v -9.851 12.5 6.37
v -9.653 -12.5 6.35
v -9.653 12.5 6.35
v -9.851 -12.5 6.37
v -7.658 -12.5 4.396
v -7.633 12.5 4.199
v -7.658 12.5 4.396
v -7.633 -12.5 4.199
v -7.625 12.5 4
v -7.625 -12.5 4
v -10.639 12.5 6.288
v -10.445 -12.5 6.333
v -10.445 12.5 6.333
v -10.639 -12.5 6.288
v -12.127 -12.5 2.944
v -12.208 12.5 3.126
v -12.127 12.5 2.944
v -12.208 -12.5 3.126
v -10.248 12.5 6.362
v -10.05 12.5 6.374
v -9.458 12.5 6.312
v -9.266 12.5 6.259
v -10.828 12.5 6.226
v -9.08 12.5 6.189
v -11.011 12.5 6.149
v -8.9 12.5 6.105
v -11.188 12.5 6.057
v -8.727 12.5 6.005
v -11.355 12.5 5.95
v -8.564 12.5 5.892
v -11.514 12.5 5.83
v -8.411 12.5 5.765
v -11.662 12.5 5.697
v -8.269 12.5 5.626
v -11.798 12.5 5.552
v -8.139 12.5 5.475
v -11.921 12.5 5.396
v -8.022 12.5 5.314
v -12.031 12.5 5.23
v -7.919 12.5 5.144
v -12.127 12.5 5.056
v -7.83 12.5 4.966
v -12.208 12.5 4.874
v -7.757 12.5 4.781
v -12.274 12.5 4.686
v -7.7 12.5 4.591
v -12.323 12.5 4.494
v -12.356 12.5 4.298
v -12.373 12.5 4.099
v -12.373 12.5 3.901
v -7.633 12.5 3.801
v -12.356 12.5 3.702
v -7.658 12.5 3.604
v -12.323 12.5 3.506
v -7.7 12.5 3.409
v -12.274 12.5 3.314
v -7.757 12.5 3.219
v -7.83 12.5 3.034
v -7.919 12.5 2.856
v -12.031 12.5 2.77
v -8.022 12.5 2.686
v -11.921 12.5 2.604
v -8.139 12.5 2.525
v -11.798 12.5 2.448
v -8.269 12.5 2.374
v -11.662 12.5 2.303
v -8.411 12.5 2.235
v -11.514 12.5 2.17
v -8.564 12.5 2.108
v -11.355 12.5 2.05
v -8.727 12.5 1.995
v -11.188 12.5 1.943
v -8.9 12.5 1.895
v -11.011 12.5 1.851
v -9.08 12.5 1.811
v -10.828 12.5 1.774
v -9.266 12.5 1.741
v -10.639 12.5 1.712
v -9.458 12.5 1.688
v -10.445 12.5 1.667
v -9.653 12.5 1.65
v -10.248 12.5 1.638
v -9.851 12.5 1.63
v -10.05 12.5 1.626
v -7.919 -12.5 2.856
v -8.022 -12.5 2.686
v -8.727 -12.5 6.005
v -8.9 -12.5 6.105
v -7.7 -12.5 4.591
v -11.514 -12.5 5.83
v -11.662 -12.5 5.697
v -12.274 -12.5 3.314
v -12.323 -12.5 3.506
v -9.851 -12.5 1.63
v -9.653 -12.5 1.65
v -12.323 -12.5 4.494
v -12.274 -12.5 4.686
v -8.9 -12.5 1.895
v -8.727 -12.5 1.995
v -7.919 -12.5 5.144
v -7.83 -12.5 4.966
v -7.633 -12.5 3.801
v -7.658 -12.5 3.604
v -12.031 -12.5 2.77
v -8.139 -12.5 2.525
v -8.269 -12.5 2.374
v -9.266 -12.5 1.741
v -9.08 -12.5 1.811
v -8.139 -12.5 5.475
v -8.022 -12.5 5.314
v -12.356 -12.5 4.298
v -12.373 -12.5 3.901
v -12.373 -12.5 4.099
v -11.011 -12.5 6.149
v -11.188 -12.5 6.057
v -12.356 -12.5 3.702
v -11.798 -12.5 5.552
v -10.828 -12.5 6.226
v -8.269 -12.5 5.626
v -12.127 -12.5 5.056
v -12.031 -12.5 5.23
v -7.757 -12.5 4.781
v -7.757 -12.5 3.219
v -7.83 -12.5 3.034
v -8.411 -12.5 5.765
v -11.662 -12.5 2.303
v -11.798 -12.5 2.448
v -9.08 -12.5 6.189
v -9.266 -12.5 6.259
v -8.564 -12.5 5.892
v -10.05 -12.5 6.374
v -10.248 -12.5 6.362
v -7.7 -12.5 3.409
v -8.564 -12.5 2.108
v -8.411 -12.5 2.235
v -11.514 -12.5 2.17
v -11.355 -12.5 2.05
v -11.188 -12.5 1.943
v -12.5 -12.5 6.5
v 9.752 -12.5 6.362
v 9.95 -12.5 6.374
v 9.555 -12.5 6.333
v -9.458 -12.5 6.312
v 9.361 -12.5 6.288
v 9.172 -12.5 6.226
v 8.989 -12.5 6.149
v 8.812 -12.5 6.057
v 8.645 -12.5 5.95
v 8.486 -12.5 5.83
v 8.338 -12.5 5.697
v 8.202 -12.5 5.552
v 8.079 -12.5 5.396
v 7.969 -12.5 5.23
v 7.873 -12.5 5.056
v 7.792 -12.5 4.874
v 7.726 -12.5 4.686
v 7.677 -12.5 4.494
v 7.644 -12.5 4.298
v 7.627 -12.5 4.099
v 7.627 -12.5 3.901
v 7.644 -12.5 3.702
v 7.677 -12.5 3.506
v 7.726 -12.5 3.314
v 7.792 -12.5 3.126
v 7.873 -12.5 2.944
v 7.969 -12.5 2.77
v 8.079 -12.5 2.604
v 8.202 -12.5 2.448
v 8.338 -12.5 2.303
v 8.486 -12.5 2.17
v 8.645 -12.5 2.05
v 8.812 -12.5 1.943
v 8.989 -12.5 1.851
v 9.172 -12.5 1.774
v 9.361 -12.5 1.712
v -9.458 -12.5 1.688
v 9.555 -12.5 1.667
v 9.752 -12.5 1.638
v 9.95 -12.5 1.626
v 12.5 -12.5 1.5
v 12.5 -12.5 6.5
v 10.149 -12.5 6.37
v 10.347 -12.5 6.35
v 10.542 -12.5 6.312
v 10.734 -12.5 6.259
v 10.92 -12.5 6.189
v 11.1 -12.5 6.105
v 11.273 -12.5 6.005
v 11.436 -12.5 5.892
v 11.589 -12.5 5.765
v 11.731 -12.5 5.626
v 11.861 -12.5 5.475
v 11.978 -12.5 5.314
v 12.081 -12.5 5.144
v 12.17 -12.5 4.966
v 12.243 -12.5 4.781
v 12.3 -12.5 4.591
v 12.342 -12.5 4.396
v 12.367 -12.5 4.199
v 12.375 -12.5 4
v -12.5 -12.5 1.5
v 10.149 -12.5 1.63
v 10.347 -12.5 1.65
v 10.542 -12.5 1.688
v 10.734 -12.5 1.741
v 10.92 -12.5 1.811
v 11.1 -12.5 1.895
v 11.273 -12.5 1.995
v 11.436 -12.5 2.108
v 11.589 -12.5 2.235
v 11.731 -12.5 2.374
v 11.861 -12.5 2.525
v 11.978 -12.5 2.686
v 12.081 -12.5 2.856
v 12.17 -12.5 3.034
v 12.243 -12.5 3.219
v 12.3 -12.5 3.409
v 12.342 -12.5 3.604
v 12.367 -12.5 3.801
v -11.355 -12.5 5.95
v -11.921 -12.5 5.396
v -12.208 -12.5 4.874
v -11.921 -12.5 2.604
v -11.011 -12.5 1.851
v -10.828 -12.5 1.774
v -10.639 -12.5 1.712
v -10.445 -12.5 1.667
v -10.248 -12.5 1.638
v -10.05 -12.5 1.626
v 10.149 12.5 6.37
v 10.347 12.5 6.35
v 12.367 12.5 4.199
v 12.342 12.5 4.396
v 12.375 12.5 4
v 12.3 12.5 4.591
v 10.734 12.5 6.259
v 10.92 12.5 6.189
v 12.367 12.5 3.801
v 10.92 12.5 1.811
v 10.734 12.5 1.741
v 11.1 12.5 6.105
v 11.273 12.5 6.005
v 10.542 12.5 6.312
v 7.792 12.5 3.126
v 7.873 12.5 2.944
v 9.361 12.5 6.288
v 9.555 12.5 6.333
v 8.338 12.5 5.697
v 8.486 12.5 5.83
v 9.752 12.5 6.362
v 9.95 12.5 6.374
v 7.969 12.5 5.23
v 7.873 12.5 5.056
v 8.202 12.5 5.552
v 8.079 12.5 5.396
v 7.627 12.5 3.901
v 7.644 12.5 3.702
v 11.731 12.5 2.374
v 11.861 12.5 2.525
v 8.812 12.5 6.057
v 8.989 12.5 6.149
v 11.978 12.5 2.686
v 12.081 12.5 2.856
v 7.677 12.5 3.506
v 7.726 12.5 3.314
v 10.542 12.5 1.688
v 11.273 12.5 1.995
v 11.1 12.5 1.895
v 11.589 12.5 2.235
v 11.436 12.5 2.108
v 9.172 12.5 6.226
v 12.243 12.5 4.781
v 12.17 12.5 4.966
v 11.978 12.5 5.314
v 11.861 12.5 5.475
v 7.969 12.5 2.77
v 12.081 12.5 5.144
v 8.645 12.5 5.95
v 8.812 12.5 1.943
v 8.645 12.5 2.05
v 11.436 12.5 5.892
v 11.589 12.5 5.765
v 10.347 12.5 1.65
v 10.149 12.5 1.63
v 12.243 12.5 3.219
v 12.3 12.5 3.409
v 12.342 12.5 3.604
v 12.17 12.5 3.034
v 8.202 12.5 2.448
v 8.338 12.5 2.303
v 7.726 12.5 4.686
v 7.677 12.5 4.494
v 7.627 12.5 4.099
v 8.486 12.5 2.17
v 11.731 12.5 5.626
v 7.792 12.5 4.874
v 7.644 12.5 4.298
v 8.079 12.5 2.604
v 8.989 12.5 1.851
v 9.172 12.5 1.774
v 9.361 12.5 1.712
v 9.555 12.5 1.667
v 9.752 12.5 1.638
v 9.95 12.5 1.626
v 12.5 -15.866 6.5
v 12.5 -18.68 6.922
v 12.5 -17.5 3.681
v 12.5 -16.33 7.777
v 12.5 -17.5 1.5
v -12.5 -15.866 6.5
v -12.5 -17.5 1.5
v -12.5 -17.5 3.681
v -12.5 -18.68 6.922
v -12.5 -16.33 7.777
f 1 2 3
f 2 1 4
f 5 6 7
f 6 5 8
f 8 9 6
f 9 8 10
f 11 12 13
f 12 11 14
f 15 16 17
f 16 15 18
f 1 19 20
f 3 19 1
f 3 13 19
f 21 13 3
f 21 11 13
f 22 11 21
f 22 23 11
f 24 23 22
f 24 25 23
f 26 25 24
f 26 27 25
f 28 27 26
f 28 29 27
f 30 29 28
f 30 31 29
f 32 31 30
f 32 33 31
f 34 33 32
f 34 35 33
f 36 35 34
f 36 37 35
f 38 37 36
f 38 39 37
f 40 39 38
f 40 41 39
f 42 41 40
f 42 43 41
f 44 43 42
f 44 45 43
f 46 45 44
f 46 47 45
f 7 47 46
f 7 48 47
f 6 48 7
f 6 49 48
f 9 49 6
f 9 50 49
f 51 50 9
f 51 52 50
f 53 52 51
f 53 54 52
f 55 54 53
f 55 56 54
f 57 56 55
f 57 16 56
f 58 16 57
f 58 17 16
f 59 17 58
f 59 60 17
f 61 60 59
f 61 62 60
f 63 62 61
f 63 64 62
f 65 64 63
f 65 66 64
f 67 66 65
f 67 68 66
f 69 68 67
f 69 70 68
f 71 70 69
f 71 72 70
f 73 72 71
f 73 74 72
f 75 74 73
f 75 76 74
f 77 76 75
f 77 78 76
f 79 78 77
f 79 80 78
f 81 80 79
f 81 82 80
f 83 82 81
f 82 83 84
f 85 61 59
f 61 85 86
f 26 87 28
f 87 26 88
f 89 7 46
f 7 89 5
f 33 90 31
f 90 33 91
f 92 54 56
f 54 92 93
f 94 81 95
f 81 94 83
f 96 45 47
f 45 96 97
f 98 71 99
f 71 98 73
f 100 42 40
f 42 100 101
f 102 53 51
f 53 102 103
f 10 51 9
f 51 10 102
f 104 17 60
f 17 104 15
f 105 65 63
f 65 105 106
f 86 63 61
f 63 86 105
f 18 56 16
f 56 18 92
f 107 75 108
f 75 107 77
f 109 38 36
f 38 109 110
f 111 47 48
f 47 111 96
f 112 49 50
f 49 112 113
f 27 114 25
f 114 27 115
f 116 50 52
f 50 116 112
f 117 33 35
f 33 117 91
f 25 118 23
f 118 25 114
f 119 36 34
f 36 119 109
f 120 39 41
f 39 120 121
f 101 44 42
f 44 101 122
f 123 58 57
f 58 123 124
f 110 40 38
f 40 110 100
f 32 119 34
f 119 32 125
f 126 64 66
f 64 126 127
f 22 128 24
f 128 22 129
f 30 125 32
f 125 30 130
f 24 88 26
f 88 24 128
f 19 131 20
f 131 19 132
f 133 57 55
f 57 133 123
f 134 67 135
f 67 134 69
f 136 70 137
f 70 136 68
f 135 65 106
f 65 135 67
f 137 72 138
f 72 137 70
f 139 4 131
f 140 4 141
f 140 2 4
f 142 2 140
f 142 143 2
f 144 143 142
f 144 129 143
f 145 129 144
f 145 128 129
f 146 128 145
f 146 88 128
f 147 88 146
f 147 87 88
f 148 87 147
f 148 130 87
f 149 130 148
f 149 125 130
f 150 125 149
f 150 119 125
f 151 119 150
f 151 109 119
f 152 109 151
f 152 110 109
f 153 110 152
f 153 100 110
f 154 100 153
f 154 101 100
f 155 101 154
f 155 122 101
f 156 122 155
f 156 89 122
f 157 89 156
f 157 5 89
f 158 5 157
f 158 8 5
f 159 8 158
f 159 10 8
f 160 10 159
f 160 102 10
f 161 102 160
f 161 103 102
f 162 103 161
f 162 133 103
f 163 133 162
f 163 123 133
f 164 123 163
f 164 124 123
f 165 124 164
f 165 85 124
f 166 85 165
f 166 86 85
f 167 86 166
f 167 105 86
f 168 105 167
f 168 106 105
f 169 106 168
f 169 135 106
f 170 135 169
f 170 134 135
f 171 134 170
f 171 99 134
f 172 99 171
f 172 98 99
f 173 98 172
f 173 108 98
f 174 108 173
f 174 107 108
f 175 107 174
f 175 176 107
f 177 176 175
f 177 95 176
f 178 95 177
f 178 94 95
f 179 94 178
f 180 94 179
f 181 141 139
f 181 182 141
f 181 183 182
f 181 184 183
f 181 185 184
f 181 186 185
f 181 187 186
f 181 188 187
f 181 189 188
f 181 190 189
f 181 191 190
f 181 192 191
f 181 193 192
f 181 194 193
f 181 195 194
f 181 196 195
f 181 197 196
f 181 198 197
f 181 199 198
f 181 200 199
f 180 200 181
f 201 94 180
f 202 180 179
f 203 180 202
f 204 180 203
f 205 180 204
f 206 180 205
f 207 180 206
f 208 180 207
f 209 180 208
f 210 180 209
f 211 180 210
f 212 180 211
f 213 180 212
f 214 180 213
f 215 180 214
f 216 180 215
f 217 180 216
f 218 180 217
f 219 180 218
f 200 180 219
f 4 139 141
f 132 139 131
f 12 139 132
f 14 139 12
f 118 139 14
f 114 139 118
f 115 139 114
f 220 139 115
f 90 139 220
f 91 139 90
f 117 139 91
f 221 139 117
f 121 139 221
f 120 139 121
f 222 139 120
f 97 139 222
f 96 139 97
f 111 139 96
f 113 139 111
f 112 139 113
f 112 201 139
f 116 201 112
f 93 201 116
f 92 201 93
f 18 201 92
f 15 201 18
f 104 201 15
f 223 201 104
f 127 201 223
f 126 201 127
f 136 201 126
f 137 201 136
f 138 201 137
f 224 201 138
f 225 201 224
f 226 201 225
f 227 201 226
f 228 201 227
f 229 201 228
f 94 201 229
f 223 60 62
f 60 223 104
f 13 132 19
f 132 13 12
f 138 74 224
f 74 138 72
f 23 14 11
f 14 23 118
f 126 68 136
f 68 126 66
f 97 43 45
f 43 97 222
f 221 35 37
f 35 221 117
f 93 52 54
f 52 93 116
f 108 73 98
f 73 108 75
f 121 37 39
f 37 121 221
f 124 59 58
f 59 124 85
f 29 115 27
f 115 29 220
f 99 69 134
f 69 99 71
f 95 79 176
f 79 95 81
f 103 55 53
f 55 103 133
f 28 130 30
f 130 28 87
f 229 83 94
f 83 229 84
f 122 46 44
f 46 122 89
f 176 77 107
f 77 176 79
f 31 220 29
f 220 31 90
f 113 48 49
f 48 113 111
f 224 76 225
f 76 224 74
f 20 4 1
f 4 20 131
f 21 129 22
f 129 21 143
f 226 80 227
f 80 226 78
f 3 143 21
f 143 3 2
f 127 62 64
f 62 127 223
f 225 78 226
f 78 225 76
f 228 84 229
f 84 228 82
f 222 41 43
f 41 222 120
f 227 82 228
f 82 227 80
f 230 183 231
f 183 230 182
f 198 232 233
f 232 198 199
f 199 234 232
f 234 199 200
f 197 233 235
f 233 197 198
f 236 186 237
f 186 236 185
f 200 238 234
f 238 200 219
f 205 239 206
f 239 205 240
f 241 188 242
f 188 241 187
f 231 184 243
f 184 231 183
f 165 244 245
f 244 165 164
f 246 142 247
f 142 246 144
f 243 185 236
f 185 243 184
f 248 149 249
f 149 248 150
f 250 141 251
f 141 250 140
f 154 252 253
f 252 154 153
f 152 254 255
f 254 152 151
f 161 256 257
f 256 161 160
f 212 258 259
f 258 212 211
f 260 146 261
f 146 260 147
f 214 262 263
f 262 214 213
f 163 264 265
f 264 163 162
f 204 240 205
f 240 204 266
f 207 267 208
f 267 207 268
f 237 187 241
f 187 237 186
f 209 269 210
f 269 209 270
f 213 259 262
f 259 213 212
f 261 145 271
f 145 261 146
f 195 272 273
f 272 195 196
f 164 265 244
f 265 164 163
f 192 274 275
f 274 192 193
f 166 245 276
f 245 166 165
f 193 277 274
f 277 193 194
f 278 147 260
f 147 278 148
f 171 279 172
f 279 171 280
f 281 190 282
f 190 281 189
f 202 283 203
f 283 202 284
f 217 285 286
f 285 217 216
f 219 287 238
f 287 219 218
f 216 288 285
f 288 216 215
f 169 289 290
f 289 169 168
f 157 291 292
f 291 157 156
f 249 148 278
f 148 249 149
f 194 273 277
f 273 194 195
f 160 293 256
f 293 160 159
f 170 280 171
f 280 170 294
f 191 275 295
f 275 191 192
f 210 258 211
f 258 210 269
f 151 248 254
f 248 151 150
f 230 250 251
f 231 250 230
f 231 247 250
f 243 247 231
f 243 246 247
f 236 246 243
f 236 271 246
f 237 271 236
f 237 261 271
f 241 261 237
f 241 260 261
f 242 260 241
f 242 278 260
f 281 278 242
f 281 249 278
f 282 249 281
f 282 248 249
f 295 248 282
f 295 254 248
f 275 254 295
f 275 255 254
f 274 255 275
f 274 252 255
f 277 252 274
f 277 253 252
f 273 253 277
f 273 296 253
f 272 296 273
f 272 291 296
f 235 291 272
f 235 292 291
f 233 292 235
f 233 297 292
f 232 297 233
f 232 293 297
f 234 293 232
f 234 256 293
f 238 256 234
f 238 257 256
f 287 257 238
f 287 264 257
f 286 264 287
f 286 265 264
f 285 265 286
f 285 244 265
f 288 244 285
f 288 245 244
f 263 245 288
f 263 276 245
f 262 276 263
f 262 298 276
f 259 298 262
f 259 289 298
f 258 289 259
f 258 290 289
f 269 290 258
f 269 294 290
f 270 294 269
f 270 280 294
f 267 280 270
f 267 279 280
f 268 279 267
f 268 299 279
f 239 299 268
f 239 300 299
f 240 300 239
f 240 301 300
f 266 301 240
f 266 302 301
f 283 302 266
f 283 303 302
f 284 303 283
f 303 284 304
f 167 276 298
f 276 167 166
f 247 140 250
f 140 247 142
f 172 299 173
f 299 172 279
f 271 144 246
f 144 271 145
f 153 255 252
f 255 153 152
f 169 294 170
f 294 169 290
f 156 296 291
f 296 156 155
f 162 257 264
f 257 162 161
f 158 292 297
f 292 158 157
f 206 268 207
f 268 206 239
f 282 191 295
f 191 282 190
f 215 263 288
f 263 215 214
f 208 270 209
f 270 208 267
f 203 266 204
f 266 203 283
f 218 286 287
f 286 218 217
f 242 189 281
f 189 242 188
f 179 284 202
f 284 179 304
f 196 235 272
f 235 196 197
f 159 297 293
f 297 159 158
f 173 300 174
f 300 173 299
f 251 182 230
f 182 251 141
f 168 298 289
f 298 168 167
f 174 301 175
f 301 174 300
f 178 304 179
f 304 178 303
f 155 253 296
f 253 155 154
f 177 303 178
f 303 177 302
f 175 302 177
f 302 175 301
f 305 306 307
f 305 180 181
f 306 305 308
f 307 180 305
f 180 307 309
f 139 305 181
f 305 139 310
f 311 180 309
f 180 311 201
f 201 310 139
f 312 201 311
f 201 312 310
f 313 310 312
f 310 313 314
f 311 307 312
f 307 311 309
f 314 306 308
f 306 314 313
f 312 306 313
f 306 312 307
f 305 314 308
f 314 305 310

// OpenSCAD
// file: EnchufeBaseCNC.scad
//$fn=75;

// Altura=5;   // Altura del plato en mm
// DistanciaAgujeros = 20;
// DiametroAgujeros = 5;
include <ParametrosCamaCNC.scad>;

module Enchufe(){
    difference(){
        union(){
            Patas();
            Tubos();
            Frentes();
        }
        Agujeros();
    }
}

module Frentes(){
    i=0;
    //union(){
    //    for (i = [0:1]){
            translate([0,-DistanciaAgujeros/2+i*DistanciaAgujeros,Altura-1])
                Frente();

    //    }
    //}
}


module Frente(){
        cube([DistanciaAgujeros, DiametroAgujeros, 1.5*DiametroAgujeros], center=true);
}


module Tubos(Diametro = DiametroAgujeros, LargoAdicional=0){
    union(){
        for (i = [0:1]){
            translate([-DistanciaAgujeros/2 + i*DistanciaAgujeros,0,Altura-1])
                Tubo(Diametro/2,LargoAdicional);

        }
    }
}


module Tubo(Diametro=DiametroAgujeros,LargoAdicional=0){
    // Este es el tubo por el que se deslizan las barras de la morcita
    // Vamos a usar el mismo set de agujeros/diametros de las patas

    rotate([90,0,0])
//        difference(){
            cylinder(h=DistanciaAgujeros+DiametroAgujeros+LargoAdicional, r = Diametro/2+Altura/2,center=true);
//            cylinder(h=DistanciaAgujeros+DiametroAgujeros+1, r = DiametroAgujeros/2+0.25,center=true);
//        }




}

module Pata(){
    cylinder(h = 1.5*Altura-1, r = DiametroAgujeros/2-0.25);
}

module Patas(){
    union(){
        for (i = [ 0: 1]){
            for ( j= [0: 1]){
                translate([-DistanciaAgujeros/2+i*DistanciaAgujeros,-DistanciaAgujeros/2+j*DistanciaAgujeros,-Altura+1])
                    Pata();
            }
        }
    }
}

module MuescaTuerca(){
    // Exagono para la tuerca
    r=4;
    h=3;
    A = Altura*2;

     union(){
         rotate([90,0,0])
             cylinder(r=r, h=h, $fn=6,center=true);
         translate([0,0,A/2])
             cube([2*r,h,A],center=true);
     }
}

module Agujeros(){
    union(){
        Tubos(DiametroAgujeros/2, 1);
        translate([0,-DistanciaAgujeros/2,Altura-1])
            MuescaTuerca();
        AgujeroTornillo();
    }
}

module AgujeroTornillo(){
    translate([0,-DistanciaAgujeros/2,Altura-1])
        rotate([90,0,0])
        cylinder(r=3.5/2,h=10,center=true);
}


Enchufe();
//MuescaTuerca();a
//Agujeros();
// file: ParametrosCamaCNC.scad
$fn=75;

Tamano=100;  // Lado del cuadrado
Altura=5;   // Altura del plato en mm
Diametro=23.5; // Diametro del circulo del enganche del puzzle
DistanciaAgujeros = 20;
DiametroAgujeros = 5;
LargoTope=10;
// main file
include <ParametrosCamaCNC.scad>;
use <EnchufeBaseCNC.scad>

module Morza(){
    union(){
        Tubos(-0.5);
        Frente();
    }
}

module MuescaTornillo(){

        translate([0, -DistanciaAgujeros/2-DiametroAgujeros+1.5,Altura-1])
            rotate([90,0,0])
            cylinder(r1=3.5/2, r2=0, h=2, center=true);
}

module Frente(){
    union(){
        translate([0, -DistanciaAgujeros/2-DiametroAgujeros,Altura-1])
            cube([DistanciaAgujeros+DiametroAgujeros,DiametroAgujeros,Altura],center=true);
        translate([0, -DistanciaAgujeros/2-1.33*DiametroAgujeros,Altura])
            rotate([20,0,0])
            cube([DistanciaAgujeros+DiametroAgujeros,DiametroAgujeros/2,Altura],center=true);

    }
}

//Enchufe();
Morza();
MuescaTornillo();
